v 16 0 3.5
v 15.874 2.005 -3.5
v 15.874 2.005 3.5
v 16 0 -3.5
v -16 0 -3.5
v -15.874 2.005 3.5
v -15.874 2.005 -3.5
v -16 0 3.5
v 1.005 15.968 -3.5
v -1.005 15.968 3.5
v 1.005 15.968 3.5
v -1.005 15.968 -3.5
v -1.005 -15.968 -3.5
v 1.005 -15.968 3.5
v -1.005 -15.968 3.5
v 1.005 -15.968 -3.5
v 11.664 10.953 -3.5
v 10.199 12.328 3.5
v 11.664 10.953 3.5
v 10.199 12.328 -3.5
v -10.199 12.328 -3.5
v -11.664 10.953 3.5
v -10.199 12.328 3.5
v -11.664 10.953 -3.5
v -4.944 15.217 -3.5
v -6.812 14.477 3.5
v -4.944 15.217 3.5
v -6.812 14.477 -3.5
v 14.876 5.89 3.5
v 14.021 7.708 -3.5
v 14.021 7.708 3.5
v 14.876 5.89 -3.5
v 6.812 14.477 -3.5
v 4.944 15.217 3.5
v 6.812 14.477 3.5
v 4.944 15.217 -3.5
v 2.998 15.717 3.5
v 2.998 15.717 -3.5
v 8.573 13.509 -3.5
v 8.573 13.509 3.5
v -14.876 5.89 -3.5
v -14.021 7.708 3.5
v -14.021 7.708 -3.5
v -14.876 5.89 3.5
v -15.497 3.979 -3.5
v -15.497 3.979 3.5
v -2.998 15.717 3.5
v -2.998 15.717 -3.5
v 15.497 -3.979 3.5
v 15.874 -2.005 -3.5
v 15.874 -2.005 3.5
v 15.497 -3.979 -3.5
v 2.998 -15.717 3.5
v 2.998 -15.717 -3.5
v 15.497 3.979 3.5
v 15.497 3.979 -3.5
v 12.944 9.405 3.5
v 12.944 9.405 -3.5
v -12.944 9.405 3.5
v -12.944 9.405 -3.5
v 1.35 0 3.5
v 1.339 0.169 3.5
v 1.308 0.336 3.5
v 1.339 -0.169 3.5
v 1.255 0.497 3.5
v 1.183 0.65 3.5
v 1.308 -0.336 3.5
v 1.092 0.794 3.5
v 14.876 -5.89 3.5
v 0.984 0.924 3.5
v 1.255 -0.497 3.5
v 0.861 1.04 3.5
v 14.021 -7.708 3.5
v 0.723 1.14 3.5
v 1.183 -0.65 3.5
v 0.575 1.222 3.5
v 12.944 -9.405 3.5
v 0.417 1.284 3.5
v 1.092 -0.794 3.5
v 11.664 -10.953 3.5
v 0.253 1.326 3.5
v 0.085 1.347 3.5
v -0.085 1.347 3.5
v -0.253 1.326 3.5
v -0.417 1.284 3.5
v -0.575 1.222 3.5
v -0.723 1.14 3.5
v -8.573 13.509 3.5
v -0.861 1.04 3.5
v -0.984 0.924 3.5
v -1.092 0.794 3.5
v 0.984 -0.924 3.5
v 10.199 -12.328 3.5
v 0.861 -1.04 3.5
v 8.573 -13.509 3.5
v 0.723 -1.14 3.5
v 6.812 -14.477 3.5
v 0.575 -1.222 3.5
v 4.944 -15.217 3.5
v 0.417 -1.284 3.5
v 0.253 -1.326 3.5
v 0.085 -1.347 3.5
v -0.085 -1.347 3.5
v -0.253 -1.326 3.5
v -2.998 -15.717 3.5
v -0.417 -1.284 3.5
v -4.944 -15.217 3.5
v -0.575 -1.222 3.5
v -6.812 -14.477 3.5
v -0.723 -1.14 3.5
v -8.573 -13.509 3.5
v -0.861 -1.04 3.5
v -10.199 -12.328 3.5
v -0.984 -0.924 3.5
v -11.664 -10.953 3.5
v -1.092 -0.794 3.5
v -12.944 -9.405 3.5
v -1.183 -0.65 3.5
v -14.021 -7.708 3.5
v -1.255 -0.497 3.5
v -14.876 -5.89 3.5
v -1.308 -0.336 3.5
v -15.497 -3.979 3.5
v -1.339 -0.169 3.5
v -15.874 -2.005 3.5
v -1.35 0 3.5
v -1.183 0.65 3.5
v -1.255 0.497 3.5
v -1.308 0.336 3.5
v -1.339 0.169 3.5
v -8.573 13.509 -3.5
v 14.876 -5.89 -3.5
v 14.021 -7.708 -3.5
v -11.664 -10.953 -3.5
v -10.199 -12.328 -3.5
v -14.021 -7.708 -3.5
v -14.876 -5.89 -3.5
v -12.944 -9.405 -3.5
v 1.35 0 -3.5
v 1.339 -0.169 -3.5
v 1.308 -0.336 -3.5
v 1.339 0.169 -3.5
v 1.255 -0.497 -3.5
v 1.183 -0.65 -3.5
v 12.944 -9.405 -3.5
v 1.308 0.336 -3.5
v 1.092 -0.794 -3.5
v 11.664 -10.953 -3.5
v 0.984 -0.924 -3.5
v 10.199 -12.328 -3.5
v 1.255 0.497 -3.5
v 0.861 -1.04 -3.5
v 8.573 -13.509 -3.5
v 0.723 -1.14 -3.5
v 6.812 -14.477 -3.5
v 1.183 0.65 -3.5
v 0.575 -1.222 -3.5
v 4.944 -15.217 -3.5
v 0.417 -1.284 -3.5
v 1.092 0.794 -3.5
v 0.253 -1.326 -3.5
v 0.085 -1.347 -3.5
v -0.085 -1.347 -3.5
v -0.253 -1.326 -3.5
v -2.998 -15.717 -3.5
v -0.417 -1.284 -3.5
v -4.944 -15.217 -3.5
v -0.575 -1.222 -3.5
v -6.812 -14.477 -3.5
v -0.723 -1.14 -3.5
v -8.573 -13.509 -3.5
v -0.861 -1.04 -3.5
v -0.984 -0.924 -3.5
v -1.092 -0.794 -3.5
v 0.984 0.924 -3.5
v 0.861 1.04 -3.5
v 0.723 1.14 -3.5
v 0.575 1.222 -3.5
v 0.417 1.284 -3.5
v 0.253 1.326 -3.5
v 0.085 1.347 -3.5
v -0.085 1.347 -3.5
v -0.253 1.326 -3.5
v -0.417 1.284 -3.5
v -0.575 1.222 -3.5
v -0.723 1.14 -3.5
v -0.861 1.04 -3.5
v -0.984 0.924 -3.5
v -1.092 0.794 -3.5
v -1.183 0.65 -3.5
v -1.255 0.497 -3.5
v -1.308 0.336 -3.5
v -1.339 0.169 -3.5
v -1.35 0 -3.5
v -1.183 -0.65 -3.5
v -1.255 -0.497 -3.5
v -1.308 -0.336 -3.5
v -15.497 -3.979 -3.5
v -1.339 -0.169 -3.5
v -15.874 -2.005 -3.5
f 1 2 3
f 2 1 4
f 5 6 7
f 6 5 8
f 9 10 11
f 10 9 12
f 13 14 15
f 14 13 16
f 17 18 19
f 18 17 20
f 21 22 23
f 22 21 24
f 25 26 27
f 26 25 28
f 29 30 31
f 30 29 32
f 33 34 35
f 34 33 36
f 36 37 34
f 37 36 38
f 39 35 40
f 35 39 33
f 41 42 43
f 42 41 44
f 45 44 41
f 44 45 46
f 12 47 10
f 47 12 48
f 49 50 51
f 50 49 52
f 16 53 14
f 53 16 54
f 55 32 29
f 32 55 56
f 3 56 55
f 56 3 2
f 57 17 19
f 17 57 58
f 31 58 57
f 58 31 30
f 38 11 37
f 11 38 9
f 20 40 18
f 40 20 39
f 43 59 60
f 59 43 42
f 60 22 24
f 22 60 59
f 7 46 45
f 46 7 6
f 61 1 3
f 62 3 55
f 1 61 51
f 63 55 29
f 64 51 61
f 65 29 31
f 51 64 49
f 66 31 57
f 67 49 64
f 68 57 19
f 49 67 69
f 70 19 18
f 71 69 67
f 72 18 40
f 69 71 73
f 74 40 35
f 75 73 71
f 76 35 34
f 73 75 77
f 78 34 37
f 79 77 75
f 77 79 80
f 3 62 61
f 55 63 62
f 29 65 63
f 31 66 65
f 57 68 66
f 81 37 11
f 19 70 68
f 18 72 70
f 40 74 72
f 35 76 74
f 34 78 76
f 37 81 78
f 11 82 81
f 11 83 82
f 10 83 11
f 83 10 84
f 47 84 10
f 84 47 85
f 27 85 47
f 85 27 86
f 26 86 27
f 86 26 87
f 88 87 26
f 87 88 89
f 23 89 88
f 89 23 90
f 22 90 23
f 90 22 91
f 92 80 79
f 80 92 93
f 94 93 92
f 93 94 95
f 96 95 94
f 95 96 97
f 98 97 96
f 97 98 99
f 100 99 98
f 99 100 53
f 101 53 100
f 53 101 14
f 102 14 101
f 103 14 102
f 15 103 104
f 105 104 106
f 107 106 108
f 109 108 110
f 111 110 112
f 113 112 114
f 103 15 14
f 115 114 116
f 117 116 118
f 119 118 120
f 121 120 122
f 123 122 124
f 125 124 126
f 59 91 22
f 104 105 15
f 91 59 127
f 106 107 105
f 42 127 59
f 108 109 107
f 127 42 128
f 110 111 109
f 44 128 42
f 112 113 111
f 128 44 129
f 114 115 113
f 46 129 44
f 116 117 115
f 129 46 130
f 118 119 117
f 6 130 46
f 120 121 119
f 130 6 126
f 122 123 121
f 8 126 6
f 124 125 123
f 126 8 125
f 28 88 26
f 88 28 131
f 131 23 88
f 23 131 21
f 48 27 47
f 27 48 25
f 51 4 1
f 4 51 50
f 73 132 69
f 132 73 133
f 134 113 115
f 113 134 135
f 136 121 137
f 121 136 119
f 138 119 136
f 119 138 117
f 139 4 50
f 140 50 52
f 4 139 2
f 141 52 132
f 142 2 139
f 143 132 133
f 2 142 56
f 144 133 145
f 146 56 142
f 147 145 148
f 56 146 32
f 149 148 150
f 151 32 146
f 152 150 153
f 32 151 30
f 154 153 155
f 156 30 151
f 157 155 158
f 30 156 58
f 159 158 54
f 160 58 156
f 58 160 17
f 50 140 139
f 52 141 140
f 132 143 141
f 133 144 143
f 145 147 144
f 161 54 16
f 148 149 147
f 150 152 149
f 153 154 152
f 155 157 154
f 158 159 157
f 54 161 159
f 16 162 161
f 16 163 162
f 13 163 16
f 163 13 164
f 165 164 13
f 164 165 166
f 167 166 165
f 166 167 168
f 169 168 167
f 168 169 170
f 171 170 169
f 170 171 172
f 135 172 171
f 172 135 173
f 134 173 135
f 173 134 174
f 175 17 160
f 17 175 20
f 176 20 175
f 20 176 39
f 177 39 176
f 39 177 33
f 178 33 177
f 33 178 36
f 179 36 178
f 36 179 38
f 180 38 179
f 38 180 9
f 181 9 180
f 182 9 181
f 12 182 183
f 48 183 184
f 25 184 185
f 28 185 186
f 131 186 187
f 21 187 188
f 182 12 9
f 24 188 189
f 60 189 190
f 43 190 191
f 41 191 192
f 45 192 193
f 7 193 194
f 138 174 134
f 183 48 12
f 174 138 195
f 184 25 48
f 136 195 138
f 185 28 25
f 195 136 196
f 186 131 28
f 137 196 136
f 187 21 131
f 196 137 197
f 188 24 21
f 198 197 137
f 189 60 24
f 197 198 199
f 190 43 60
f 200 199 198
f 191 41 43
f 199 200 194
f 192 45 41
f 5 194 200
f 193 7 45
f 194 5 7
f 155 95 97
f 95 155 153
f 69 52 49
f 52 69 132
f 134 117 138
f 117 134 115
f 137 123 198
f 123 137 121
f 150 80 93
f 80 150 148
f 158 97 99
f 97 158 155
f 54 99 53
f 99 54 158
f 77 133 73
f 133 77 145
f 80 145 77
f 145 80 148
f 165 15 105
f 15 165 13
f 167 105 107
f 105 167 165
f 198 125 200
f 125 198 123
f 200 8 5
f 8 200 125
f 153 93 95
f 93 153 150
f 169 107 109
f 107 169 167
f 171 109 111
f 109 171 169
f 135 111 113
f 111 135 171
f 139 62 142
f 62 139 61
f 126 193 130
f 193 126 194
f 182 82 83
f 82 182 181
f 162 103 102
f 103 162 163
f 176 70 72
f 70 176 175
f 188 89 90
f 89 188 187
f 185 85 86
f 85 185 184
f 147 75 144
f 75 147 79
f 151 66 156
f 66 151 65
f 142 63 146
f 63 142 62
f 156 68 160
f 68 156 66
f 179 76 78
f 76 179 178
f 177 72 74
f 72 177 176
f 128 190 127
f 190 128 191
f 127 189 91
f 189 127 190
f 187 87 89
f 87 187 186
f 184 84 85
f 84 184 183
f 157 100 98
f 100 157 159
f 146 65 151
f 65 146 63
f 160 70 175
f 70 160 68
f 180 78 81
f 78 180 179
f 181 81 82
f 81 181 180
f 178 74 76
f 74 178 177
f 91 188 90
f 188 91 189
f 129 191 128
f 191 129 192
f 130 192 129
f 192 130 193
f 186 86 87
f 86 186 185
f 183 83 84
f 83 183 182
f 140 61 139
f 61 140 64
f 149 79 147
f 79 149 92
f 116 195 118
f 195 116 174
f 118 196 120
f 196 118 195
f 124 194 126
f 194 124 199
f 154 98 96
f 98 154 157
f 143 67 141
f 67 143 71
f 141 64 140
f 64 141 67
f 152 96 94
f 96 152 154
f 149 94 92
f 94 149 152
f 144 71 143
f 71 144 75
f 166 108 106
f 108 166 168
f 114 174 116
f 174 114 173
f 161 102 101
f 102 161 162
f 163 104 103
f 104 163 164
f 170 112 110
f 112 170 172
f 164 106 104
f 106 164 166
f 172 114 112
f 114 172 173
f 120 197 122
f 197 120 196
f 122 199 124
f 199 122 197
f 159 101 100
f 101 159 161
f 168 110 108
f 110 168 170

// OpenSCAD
$fn = 50;


difference() {
	union() {
		translate(v = [0, 0, -3.5000000000]) {
			cylinder(h = 7, r = 16.0000000000);
		}
	}
	union() {
		translate(v = [0, 0, -100.0000000000]) {
			cylinder(h = 200, r = 1.3500000000);
		}
	}
}
